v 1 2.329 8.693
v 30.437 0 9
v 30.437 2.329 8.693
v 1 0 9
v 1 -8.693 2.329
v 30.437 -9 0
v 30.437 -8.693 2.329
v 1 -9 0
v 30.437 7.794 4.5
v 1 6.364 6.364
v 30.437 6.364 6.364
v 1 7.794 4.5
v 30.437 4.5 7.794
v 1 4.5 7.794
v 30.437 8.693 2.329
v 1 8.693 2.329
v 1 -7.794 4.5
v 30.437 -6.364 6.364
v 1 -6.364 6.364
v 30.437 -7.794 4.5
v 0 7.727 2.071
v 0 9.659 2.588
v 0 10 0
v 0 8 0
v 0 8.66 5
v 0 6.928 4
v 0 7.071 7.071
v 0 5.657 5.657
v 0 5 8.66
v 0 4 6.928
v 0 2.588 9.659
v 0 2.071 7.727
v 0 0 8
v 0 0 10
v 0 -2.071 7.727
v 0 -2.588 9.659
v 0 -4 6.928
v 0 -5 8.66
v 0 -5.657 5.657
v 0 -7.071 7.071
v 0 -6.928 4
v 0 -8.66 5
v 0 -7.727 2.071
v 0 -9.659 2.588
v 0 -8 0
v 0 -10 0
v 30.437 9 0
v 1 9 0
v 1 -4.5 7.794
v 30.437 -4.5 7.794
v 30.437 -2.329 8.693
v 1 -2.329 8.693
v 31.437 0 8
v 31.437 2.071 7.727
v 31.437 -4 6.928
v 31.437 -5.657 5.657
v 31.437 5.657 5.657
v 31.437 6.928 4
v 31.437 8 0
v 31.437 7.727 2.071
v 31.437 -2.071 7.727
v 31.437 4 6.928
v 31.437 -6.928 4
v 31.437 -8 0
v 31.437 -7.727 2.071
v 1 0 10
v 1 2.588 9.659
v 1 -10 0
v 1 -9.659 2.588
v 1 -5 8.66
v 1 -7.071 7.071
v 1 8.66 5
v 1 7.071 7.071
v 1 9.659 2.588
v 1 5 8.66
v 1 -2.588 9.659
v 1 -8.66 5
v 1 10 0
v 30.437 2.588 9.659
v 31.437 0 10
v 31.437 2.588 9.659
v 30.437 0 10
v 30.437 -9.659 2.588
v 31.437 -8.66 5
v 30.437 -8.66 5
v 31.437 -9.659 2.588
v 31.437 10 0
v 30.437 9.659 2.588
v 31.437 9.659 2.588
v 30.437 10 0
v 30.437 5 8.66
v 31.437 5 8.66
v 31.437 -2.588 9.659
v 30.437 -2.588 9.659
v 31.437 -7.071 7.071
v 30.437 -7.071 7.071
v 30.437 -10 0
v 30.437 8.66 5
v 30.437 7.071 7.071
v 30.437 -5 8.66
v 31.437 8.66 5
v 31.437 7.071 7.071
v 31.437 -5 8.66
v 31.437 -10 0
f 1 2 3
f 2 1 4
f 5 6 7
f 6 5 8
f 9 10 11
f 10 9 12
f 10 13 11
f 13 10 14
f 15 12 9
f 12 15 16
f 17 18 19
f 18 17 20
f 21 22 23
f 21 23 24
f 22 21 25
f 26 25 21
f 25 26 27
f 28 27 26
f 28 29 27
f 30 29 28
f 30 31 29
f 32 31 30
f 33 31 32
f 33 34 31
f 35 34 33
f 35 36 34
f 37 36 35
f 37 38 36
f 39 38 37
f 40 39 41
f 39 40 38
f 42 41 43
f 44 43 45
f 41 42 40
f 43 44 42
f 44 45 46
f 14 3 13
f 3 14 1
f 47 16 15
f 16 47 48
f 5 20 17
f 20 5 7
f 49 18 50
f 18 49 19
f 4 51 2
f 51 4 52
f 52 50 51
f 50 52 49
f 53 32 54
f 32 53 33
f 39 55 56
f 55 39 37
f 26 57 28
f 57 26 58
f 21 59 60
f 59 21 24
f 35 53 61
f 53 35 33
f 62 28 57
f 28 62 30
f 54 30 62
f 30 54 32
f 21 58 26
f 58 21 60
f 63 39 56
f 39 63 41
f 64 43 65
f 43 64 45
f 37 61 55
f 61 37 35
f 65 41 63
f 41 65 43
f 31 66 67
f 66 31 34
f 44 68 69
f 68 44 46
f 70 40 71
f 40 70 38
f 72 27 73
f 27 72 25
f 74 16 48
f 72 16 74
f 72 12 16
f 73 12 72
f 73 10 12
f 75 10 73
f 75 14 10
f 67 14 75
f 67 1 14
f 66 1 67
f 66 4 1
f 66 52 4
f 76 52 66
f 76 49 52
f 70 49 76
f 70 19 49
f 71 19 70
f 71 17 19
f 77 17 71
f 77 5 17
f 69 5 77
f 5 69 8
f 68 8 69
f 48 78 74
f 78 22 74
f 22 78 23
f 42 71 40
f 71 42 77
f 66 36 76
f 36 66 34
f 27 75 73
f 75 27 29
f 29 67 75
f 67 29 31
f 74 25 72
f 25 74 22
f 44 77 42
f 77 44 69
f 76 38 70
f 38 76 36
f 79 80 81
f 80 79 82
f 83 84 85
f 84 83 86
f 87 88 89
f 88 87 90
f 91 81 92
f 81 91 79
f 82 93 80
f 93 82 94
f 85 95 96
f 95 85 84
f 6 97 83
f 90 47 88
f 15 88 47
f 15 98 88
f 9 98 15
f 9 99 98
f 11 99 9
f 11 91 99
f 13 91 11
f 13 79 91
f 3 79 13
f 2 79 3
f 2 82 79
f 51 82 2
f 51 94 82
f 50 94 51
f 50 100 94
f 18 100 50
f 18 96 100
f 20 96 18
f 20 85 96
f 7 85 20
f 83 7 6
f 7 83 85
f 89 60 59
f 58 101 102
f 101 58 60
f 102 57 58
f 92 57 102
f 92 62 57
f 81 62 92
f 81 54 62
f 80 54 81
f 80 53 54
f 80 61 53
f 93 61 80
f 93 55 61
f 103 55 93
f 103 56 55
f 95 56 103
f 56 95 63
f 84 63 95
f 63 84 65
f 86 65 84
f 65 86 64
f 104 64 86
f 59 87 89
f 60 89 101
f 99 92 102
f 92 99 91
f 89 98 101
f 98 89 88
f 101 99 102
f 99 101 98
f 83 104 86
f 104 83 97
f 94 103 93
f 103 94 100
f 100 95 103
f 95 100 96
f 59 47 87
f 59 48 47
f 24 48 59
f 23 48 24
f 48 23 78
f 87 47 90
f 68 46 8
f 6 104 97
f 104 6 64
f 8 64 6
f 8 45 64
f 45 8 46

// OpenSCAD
// file: ../build_environments.scad
// build_environments.scad: modules to build level sections
//

module pool(diameter=10.0, wall_height=2.0, step_width=3.0, connections=[])
{
    difference() {
        union() {
        difference() {
            cylinder(h=0.5,r1=diameter+step_width,r2=diameter+step_width,$fn=48);
            translate([0,0,-0.1])
                cylinder(h=0.7,r1=diameter,r2=diameter,$fn=48);
        }
        difference() {
            cylinder(h=wall_height,r1=diameter+step_width+1.0,r2=diameter+step_width+1.0,$fn=48);
            translate([0,0,-0.1])
                cylinder(h=wall_height+0.2,r1=diameter+step_width,r2=diameter+step_width,$fn=48);
        }
        }
    
        for (c = connections)
        {
            rotate([0,90,0]) {
                angle = atan2(c[1],c[0]);
                rotate([-angle,0,0]) {
                    cylinder(h=diameter+5.0,r1=c[2],r2=c[2],$fn=48);
                }
            }
        }
    }
}

module straight(length=10.0, width=2.0, dy1=0.0, dy2=0.0, dz=0.0)
{
    dims = [0, 0, 0, 0, 0, (dz/length)];
    matrix = [
        [ 1, dims[0], dims[1], 0 ],
        [ dims[2], 1, dims[4], 0 ],
        [ dims[5], dims[3], 1, 0 ],
        [ 0, 0, 0, 1 ]
    ];
    multmatrix(matrix)
    difference() {
        translate([dy1,0,0])
        union() {
            rotate([0,90,0]) {
                difference() {
                    cylinder(h=(length-dy1-dy2),r1=width+1.0,r2=width+1.0,$fn=24);
                    translate([0,0,-0.1])
                        cylinder(h=(length-dy1-dy2+0.2),r1=width,r2=width,$fn=24);
                }
                difference() {
                    cylinder(h=1.0,r1=width+2.0,r2=width+2.0,$fn=24);
                    translate([0,0,-0.1])
                        cylinder(h=1.2,r1=width,r2=width,$fn=24);
                }
                translate([0,0,(length-dy1-dy2)-1.0]) {
                    difference() {
                        cylinder(h=1.0,r1=width+2.0,r2=width+2.0,$fn=24);
                        translate([0,0,-0.1])
                            cylinder(h=1.2,r1=width,r2=width,$fn=24);
                    }
                }
            }
        }
        translate([0,0,-(2*width+4.0)/2])
            cube([3*length,3*length,2*width+4.0],center=true);
    }
}

module curve(p0=[0,0], center=[0,0], dir=1, angle=0.0, width=2.0)
{
    radius = sqrt((p0[0]-center[0])*(p0[0]-center[0]) + (p0[1]-center[1])*(p0[1]-center[1]));
    if (dir == 0) {
        difference() {
            rotate([0,0,-90])
            difference() {
                rotate_extrude(angle = angle, convexity = 10, $fn=32)
                    translate([radius, 0, 0])
                        circle(r = width+1.0,$fn=24);
                rotate([0,0,-1.0])
                    rotate_extrude(angle = angle+2.0, convexity = 10, $fn=32)
                        translate([radius, 0, 0])
                            circle(r = width,$fn=24);
            }
            translate([0,0,-(2*width+4.0)/2])
                cube([5*radius,5*radius,2*width+4.0],center=true);
        }
    }
    else {
        difference() {
            rotate([0,0,90])
            difference() {
                rotate_extrude(angle = -angle, convexity = 10, $fn=32)
                    translate([radius, 0, 0])
                        circle(r = width+1.0,$fn=24);
                rotate([0,0,1.0])
                    rotate_extrude(angle = -angle-2.0, convexity = 10, $fn=32)
                        translate([radius, 0, 0])
                            circle(r = width,$fn=24);
            }
            translate([0,0,-(2*width+4.0)/2])
                cube([5*radius,5*radius,2*width+4.0],center=true);
        }
    }

}

// test pool
//pool(diameter=12.0000, wall_height=3.0000, step_width=3.0000, connections=[[0.0000,-26.0000,2.0000], [23.6074,0.0000,2.0000]]);

// test straight, slope
//straight(length=26.0000, width=2.0000, dy1=11.8322, dy2=6.7082, dz=0.0000);
//straight(length=29.1549, width=12.0000, dy1=0.0000, dy2=0.0000, dz=-15.0000);

// test curve
//curve(p0=[23.6074, 0.0000], center=[23.6074, 5.0000], dir=0, angle=60.1011, width=2.0000);
//curve(p0=[33.6426, 12.4219], center=[37.9771, 9.9295], dir=1, angle=120.4627, width=2.0000);
// main file
use <../build_environments.scad>;
straight(length=31.4374, width=8.0000, dy1=0.0000, dy2=0.0000, dz=0.0000);
